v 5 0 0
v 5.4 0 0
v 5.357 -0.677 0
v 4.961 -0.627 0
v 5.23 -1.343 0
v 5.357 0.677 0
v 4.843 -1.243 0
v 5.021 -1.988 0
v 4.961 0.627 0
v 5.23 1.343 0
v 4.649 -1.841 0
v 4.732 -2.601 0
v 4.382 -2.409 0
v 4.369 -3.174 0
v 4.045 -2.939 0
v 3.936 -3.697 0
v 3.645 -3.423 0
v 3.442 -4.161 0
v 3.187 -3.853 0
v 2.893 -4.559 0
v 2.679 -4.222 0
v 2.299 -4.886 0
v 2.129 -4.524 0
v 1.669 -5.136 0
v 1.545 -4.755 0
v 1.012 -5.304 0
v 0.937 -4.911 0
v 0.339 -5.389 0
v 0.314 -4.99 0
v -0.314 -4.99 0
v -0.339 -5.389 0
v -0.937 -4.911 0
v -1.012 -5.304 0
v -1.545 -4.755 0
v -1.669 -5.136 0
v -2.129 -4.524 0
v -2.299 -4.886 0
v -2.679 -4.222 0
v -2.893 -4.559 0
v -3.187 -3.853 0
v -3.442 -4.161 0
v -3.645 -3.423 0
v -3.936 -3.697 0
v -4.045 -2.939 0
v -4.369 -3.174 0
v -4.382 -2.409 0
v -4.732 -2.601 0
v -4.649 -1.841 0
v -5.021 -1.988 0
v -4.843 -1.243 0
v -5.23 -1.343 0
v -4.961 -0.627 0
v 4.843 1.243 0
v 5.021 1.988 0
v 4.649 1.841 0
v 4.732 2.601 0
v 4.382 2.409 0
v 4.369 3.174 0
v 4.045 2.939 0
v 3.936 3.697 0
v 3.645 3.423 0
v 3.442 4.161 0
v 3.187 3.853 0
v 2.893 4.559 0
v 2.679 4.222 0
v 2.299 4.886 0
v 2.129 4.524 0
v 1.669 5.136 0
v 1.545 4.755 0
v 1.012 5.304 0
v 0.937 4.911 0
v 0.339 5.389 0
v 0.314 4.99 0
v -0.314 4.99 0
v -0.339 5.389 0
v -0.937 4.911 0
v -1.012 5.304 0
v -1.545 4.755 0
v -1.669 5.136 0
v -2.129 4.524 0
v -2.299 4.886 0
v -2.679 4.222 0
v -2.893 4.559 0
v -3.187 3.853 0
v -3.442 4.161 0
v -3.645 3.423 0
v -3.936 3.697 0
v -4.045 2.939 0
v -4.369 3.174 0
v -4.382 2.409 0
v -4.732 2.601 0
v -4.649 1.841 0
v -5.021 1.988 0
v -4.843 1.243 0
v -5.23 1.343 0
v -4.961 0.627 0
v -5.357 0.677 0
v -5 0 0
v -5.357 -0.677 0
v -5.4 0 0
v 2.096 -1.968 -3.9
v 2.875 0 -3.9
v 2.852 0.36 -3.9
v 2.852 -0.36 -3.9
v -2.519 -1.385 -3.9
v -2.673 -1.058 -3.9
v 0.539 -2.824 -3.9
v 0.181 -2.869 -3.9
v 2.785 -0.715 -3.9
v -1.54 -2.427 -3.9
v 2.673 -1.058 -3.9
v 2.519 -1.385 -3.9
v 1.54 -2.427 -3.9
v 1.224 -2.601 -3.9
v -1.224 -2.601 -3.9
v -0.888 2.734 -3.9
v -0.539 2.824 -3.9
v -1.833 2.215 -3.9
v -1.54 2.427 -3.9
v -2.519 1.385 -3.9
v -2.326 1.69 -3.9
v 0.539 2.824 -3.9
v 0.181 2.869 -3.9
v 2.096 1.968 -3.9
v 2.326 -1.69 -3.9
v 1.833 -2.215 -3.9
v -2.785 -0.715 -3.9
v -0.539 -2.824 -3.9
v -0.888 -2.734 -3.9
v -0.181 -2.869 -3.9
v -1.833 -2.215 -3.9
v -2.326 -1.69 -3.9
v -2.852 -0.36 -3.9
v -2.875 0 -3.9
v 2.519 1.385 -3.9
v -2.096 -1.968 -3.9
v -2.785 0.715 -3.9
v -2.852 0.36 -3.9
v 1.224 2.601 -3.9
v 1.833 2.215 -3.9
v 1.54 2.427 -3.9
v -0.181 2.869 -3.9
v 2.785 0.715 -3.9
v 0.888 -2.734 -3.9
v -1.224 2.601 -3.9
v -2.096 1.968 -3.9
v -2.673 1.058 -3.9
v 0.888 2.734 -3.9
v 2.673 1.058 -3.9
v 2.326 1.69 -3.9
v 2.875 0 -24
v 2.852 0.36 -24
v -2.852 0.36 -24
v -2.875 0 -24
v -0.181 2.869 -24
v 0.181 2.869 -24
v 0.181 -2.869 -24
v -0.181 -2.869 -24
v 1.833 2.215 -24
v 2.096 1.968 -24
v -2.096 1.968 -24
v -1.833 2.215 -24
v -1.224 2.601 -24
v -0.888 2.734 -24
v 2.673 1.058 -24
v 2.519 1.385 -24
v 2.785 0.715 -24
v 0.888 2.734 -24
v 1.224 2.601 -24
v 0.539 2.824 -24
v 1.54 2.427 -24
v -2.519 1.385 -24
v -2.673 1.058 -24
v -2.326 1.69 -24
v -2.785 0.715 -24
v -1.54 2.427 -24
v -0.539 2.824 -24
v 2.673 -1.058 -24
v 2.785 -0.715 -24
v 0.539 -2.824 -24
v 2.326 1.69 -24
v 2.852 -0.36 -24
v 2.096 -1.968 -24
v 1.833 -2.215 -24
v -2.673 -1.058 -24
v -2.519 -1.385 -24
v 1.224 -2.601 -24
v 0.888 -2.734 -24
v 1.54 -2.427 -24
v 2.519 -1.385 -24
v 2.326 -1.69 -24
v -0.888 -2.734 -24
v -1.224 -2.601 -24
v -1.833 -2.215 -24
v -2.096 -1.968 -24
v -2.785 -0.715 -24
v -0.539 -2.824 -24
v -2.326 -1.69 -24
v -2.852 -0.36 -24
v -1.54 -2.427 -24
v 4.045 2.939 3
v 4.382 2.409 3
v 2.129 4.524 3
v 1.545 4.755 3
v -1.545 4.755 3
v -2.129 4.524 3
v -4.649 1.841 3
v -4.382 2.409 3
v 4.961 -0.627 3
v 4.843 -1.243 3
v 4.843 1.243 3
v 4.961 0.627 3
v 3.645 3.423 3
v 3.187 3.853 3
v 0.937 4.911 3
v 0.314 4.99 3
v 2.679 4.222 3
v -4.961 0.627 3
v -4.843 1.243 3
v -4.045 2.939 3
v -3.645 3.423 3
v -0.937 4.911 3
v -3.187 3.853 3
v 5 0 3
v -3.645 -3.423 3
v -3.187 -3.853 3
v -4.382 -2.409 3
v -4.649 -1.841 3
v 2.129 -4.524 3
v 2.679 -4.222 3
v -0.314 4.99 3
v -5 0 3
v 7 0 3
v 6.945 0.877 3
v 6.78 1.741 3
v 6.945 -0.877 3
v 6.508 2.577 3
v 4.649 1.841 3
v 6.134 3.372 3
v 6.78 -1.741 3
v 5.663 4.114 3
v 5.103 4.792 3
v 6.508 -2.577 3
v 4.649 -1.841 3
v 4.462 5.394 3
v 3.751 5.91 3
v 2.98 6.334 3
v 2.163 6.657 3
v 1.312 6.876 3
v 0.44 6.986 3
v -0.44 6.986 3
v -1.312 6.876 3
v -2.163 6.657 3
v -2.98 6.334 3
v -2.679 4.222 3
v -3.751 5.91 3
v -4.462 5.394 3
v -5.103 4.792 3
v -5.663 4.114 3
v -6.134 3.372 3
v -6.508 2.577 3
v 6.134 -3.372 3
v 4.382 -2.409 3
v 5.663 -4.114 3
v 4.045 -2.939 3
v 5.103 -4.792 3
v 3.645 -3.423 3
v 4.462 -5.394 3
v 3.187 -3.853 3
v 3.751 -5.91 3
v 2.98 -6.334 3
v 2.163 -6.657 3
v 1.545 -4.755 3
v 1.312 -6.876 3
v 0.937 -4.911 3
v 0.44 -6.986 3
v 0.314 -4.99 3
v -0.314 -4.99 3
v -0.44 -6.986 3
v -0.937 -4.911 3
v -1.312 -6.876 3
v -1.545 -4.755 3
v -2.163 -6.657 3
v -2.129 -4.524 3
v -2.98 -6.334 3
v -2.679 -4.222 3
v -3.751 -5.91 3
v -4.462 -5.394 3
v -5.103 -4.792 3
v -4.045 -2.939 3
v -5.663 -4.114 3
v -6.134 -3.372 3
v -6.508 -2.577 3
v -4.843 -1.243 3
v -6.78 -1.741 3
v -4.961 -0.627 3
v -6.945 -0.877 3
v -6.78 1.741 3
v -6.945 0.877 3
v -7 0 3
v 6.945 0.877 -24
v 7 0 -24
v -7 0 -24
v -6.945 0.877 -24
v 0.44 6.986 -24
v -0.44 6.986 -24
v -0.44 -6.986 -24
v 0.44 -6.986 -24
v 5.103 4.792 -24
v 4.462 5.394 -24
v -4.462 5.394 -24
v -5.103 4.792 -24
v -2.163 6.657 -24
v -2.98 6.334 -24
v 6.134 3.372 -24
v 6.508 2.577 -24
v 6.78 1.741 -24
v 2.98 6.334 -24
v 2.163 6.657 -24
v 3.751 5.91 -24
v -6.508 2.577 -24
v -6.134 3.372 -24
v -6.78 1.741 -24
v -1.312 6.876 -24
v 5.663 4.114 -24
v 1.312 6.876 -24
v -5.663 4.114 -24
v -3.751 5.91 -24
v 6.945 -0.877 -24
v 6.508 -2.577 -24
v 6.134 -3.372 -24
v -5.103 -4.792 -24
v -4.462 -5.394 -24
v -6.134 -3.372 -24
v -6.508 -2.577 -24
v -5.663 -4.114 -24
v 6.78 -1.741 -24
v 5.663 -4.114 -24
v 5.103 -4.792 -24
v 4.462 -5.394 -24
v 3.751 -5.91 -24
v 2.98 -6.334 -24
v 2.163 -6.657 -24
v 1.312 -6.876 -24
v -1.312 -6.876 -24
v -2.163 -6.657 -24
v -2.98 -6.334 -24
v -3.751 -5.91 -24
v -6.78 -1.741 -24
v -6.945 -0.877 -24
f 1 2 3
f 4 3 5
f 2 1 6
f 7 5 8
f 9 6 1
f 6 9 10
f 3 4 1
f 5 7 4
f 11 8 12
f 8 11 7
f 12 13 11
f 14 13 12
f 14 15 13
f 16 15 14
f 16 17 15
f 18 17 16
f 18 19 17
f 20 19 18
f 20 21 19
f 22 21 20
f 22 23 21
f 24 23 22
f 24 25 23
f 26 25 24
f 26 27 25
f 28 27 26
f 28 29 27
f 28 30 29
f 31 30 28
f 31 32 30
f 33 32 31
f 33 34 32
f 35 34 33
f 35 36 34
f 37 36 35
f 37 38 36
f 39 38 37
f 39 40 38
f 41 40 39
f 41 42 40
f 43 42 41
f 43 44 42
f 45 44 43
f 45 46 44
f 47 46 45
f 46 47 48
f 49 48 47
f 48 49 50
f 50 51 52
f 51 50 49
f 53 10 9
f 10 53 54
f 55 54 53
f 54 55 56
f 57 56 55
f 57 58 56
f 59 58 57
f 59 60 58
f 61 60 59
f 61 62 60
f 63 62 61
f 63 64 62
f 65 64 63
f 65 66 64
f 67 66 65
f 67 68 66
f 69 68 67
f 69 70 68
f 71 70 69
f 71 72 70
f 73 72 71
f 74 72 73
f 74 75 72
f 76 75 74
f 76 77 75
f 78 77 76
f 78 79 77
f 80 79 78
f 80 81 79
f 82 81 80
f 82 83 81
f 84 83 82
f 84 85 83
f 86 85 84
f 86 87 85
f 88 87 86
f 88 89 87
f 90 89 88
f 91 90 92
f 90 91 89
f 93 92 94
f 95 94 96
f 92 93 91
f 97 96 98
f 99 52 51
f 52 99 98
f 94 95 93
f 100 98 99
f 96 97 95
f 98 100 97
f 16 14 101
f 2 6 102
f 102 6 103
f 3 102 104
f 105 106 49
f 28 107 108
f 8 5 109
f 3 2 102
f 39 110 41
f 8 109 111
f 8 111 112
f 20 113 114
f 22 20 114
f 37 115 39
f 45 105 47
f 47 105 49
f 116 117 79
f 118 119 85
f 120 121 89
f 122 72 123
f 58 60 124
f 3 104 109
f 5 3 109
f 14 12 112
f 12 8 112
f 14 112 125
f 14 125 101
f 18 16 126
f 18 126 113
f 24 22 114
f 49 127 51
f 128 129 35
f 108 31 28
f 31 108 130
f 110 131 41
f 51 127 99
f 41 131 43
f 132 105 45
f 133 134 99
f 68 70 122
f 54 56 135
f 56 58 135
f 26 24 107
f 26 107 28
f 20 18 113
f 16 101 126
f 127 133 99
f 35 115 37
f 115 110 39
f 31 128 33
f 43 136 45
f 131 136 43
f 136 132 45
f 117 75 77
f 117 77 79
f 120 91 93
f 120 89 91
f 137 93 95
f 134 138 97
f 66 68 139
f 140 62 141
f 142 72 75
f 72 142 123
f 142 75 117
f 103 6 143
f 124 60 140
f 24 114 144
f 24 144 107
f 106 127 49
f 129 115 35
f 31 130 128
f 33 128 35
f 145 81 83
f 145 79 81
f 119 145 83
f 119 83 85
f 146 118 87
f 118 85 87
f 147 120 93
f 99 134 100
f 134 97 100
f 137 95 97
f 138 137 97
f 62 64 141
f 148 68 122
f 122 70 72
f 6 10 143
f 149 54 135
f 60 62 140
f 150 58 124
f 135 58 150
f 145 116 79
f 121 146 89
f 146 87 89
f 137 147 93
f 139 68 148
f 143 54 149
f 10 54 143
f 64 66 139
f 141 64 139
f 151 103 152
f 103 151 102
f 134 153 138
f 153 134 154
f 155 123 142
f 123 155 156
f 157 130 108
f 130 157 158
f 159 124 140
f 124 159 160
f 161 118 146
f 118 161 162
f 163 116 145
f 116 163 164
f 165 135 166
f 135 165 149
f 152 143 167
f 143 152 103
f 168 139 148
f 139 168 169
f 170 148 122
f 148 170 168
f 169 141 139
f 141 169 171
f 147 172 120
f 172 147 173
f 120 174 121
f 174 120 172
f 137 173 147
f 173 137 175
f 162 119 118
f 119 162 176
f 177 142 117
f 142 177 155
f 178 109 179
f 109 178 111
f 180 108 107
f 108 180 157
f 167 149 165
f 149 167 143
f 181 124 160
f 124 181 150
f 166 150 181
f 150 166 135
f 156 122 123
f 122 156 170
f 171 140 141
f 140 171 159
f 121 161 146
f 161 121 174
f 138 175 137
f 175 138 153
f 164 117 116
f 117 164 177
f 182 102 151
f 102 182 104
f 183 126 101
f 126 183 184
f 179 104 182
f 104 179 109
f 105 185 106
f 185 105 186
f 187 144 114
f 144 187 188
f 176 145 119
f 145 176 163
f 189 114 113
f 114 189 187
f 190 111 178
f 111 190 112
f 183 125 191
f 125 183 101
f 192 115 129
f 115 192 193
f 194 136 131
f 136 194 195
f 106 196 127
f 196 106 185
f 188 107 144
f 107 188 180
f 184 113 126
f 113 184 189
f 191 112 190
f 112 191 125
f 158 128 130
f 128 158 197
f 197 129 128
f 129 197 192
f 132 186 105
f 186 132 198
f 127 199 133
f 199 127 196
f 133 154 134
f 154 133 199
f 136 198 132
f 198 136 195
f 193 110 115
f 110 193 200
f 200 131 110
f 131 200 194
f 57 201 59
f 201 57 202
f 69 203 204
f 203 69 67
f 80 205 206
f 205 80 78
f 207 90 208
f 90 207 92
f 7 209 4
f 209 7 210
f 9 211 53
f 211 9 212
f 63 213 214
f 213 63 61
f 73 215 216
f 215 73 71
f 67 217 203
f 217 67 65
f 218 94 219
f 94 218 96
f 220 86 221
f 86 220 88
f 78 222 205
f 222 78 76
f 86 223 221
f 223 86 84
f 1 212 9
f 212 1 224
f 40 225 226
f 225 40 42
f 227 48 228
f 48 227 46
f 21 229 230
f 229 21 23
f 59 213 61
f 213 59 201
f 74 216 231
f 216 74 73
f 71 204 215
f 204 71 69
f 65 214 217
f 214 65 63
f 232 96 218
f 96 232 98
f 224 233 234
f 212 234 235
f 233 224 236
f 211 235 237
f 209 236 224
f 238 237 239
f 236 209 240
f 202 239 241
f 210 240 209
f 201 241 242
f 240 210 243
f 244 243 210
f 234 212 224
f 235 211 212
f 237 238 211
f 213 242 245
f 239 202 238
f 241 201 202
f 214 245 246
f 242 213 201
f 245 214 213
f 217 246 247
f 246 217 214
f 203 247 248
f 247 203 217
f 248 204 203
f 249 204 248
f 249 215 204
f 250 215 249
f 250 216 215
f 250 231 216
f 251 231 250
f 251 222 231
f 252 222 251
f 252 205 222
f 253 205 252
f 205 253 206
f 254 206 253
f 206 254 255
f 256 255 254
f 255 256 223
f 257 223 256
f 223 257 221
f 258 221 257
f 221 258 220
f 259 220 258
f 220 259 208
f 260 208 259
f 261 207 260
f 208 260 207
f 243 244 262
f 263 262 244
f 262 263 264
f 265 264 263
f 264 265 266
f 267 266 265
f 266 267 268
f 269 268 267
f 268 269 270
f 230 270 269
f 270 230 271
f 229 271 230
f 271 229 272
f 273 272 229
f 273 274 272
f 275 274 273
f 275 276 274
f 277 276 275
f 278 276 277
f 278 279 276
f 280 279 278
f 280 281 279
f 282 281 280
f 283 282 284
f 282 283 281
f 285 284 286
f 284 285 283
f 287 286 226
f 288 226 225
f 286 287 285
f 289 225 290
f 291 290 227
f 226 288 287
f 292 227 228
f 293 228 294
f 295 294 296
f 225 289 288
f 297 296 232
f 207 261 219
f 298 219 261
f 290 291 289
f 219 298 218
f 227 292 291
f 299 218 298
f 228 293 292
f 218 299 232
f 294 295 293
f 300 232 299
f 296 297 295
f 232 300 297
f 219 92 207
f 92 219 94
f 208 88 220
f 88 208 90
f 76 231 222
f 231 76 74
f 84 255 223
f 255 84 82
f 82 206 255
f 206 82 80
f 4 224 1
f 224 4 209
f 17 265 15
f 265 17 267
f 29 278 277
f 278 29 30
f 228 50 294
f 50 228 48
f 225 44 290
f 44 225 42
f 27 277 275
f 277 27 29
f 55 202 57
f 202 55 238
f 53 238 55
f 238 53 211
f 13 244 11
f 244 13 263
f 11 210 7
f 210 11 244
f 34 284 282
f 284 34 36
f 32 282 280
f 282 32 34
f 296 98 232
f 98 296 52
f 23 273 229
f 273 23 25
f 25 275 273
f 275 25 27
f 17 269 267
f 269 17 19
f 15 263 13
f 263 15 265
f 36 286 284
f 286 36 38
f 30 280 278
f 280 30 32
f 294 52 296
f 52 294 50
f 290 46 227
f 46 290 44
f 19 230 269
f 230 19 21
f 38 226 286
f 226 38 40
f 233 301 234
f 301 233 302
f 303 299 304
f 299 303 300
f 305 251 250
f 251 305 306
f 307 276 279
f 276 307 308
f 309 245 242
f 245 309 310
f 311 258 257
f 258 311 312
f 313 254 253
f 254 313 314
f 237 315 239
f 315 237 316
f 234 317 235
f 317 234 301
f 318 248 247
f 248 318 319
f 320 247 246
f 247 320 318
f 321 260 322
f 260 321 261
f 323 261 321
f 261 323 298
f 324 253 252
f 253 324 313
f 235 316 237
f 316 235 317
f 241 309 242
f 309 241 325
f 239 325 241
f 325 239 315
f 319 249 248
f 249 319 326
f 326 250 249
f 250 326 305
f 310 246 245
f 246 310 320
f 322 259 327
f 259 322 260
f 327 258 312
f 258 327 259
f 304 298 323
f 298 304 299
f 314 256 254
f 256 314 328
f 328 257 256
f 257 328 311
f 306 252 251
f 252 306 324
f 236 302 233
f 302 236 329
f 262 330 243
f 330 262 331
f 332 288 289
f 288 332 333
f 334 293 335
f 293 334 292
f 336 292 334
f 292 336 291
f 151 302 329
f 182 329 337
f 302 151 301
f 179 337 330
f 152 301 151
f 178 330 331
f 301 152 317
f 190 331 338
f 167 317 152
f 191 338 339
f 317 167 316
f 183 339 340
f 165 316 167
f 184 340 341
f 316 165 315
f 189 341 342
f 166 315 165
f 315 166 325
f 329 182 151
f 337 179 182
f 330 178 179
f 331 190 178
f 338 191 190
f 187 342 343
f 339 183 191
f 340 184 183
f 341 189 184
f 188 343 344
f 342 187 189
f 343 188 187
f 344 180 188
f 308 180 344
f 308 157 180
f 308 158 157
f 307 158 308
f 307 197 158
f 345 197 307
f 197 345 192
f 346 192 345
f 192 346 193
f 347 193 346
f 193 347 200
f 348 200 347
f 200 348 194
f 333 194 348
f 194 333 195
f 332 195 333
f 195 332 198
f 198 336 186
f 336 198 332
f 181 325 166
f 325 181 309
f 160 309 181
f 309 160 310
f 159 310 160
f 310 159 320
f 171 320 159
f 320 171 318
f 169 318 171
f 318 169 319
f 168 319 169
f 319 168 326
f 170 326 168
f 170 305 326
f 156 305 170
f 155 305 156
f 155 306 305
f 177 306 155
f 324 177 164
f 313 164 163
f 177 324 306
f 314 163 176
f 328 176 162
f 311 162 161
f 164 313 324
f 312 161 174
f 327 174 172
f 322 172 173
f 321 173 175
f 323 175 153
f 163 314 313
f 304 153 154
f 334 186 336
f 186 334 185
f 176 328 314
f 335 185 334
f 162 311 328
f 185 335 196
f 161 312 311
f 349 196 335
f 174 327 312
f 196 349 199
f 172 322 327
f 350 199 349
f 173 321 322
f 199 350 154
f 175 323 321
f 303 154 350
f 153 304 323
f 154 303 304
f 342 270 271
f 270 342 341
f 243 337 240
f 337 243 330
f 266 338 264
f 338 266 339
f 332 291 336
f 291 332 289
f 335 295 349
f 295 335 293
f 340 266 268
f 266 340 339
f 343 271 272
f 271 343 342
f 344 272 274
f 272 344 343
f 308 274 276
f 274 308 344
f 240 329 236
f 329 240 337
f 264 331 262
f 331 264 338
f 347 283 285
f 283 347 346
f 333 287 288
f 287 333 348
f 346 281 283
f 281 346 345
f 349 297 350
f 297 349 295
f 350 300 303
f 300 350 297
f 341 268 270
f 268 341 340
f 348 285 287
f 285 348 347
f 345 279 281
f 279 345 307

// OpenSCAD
$fn = 50;


difference() {
	union() {
		translate(v = [0, 0, -24.0000000000]) {
			cylinder(h = 27, r = 7.0000000000);
		}
	}
	union() {
		translate(v = [0, 0, 0]) {
			rotate(a = [0, 0, 0]) {
				difference() {
					union() {
						translate(v = [0, 0, -27.0000000000]) {
							cylinder(h = 27, r = 2.6000000000);
						}
						translate(v = [0, 0, -3.9000000000]) {
							cylinder(h = 3.9000000000, r1 = 2.8750000000, r2 = 5.4000000000);
						}
						translate(v = [0, 0, -27.0000000000]) {
							cylinder(h = 27, r = 2.8750000000);
						}
						translate(v = [0, 0, -27.0000000000]) {
							cylinder(h = 27, r = 2.6000000000);
						}
					}
					union();
				}
			}
		}
		#cylinder(h = 3, r = 5.0000000000);
	}
}
